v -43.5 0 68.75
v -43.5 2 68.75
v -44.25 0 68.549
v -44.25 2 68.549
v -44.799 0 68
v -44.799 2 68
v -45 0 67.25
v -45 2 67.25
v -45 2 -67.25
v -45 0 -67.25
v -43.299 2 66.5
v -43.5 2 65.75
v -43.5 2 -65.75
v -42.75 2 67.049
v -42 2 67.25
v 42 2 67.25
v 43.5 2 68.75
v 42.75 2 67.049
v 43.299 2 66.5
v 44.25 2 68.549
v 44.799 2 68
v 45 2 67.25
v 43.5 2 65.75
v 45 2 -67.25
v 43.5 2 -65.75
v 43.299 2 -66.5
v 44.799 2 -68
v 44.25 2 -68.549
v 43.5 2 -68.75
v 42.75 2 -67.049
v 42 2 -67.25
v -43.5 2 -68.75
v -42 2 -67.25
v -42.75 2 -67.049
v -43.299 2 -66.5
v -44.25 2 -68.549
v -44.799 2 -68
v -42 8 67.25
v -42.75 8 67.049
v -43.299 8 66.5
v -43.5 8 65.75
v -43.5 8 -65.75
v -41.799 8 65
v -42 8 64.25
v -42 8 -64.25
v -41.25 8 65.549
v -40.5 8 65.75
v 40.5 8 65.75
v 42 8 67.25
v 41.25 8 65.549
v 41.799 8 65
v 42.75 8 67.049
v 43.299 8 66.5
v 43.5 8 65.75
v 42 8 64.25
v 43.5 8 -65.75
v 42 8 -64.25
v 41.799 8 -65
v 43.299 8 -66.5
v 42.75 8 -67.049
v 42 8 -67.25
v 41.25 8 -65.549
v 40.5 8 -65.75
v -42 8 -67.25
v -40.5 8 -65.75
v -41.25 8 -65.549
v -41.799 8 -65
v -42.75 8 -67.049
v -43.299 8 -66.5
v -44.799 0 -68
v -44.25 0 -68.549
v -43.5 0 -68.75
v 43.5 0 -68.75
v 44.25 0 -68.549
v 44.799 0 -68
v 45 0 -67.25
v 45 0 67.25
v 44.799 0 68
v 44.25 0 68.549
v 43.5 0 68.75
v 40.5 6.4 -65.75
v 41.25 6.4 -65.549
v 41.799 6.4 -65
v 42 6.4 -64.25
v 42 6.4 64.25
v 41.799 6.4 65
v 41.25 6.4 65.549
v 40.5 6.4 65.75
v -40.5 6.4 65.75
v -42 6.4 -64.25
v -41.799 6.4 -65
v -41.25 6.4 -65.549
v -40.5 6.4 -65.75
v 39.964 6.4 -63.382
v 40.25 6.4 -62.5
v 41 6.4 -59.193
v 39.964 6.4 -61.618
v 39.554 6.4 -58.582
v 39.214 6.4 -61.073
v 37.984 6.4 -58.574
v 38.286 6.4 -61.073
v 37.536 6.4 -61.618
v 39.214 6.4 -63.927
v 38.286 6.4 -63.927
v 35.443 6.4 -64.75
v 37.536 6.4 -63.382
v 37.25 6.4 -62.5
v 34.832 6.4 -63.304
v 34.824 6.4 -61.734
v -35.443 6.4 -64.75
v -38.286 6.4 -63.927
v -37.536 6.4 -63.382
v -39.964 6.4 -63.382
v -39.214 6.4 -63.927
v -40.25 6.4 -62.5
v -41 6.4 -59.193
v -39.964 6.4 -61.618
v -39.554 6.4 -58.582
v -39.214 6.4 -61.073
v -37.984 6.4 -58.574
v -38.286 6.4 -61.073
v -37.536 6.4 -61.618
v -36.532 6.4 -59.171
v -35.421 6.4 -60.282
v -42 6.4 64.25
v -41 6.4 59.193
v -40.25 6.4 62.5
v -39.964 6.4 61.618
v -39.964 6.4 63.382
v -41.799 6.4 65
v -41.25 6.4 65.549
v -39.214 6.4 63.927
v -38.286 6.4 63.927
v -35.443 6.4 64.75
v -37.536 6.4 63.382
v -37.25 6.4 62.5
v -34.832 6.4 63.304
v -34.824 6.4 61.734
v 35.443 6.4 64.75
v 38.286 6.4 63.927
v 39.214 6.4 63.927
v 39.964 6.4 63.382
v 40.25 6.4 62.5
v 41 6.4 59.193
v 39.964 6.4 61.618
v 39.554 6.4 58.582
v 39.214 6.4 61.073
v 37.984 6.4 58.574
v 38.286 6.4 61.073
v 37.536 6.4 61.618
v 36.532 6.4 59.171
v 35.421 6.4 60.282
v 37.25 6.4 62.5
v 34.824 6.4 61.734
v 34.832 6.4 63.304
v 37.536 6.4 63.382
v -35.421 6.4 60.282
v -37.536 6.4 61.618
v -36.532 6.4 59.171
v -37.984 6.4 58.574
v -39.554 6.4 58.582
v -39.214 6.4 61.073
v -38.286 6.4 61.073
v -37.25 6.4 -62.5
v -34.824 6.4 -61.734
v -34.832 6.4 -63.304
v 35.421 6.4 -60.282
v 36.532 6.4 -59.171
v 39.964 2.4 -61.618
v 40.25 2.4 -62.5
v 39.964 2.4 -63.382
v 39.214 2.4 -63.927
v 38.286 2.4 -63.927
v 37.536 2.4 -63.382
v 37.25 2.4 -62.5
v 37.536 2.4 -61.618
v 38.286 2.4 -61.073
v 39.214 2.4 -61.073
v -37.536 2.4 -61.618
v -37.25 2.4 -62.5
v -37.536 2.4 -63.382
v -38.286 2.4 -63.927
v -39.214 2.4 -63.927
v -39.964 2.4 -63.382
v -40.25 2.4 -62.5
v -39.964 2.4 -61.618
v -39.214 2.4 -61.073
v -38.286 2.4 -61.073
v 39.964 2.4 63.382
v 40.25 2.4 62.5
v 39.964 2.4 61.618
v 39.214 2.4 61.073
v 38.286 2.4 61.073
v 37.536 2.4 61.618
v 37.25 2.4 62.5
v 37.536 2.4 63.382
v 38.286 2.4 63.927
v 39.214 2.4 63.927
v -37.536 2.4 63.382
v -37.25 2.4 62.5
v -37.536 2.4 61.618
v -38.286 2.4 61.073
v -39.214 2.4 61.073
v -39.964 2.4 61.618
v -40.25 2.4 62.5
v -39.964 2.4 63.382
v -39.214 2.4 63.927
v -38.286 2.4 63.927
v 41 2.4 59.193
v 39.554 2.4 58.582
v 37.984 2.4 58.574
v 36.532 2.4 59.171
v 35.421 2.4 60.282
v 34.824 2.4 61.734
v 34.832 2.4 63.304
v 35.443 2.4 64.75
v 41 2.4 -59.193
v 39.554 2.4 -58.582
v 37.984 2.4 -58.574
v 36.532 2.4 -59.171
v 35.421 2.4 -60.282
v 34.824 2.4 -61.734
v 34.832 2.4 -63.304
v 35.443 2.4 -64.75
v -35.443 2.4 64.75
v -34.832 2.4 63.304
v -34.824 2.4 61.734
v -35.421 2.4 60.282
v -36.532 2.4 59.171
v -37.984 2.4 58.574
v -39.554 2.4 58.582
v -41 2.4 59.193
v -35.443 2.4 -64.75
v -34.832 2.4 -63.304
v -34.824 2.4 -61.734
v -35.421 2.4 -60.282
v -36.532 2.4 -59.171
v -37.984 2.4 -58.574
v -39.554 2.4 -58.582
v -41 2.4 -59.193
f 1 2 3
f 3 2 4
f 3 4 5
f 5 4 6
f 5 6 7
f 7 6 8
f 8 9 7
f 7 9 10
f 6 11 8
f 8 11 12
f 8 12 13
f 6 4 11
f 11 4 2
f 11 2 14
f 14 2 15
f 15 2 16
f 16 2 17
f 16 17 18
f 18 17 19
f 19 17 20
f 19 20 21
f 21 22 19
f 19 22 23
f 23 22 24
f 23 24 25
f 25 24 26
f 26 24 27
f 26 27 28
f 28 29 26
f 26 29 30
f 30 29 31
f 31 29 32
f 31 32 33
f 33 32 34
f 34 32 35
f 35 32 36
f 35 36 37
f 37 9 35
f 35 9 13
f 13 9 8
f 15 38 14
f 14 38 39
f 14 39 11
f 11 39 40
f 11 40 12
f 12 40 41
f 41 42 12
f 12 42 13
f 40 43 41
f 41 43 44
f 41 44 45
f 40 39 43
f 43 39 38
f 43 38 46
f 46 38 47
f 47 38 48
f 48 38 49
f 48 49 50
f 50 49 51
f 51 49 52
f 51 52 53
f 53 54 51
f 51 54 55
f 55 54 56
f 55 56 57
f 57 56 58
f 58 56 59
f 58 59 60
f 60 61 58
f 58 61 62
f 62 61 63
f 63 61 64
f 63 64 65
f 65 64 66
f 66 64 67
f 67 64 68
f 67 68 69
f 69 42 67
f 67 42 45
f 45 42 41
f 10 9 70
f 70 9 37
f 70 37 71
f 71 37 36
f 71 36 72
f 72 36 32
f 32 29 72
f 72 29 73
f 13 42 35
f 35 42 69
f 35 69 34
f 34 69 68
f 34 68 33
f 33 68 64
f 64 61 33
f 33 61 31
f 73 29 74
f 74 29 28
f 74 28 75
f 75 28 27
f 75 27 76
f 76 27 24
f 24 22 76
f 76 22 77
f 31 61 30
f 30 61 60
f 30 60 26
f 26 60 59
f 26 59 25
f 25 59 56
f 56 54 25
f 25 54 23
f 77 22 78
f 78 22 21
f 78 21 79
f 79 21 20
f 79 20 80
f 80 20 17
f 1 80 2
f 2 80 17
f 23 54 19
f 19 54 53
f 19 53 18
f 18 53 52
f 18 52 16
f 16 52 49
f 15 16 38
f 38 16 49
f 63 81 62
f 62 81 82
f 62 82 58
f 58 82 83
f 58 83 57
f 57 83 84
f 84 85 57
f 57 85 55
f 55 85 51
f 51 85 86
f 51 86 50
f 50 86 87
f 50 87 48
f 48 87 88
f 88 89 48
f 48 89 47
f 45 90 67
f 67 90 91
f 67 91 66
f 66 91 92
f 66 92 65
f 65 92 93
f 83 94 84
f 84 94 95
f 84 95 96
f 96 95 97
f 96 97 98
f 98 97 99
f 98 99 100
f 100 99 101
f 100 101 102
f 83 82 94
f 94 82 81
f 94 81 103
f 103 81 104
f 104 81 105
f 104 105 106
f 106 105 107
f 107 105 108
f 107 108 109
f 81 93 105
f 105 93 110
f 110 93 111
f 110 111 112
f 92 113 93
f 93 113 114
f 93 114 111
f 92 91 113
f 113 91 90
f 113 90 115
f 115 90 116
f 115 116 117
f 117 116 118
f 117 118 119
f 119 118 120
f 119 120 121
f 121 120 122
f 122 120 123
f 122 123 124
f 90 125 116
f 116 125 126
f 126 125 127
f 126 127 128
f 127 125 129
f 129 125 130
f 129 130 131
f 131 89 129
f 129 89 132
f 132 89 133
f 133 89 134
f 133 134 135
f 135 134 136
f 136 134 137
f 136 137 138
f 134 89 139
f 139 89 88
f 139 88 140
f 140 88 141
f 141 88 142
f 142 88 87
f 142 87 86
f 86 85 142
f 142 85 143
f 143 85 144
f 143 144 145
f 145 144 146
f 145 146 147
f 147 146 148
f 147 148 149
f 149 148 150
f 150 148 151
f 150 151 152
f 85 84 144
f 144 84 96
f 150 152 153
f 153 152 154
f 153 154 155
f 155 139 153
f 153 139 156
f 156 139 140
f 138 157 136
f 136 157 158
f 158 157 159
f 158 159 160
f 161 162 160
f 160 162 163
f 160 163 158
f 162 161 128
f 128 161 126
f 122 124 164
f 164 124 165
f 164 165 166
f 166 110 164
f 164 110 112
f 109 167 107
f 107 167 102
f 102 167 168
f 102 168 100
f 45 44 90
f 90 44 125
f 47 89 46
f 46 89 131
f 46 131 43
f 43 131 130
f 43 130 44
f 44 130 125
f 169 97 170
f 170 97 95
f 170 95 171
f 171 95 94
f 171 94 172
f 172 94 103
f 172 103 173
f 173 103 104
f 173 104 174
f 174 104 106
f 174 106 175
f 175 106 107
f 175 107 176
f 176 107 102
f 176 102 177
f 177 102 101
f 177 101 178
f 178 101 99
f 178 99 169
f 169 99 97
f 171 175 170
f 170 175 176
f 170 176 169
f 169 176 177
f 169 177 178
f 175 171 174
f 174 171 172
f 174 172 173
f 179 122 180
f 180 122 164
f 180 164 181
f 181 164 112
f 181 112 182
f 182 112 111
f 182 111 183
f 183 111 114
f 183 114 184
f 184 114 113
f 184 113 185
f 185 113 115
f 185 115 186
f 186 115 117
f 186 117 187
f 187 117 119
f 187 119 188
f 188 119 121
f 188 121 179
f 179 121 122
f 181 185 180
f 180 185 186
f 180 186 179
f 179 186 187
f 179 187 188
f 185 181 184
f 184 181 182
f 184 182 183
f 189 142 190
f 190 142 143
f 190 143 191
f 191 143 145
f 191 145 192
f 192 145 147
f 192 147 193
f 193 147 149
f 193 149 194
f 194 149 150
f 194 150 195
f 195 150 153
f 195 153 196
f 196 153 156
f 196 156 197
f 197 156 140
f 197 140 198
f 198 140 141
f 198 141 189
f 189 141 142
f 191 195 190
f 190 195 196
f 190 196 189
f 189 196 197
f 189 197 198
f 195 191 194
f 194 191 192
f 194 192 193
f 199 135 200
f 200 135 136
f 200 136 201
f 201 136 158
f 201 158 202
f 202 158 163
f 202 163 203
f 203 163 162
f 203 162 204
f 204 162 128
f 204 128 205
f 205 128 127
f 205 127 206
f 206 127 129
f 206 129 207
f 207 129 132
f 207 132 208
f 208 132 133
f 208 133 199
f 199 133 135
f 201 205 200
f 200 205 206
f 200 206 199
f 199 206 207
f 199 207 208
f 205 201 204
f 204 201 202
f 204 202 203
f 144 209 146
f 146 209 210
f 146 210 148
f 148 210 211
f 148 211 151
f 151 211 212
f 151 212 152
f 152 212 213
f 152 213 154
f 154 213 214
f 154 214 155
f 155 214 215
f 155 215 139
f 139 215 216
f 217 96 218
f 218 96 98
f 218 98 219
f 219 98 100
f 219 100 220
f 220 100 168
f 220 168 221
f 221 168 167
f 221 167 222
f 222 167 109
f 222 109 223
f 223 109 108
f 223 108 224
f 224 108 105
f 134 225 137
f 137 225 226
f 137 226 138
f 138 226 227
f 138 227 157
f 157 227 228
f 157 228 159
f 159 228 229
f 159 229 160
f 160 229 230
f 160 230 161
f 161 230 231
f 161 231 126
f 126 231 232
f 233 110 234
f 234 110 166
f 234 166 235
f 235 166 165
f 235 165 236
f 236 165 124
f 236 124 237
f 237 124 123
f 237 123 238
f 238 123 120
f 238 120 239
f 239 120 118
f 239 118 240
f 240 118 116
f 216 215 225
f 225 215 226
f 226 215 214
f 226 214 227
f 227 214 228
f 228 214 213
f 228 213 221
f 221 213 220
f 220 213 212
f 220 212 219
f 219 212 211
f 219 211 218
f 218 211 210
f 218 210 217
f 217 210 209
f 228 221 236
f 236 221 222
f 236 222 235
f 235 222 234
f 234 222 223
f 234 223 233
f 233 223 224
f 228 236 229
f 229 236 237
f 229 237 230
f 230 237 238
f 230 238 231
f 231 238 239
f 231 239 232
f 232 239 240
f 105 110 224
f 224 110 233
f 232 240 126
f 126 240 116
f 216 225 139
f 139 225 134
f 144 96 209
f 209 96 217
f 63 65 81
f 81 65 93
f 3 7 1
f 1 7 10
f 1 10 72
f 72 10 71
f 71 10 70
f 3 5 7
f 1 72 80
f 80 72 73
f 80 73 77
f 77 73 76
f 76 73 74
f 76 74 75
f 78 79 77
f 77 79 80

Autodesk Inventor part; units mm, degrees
ref_plane "YZ Plane" through (0, 0, 0) normal (1, 0, 0) x (0, 1, 0)
ref_plane "XZ Plane" through (0, 0, 0) normal (0, 1, 0) x (-1, 0, 0)
ref_plane "XY Plane" through (0, 0, 0) normal (0, 0, 1) x (1, 0, 0)
sketch "Sketch1" plane through (0, 0, 0) normal (0, 1, 0) x (-1, 0, 0)
  line L0 (-45, 68.75) -> (45, 68.75)
  line L1 (45, 68.75) -> (45, -68.75)
  line L2 (45, -68.75) -> (-45, -68.75)
  line L3 (-45, -68.75) -> (-45, 68.75)
  line L4 (-45, 68.75) -> (45, -68.75) construction
  line L5 (45, 68.75) -> (-45, -68.75) construction
  point P0 (0, 0)
  dimension "d0" = 137.5
  dimension "d1" = 90
extrude "Extrusion1" add sketch "Sketch1" along normal blind 8
sketch "Sketch2" plane through (0, 8, 0) normal (0, 1, 0) x (1, 0, 0)
  line L0 (42, -65.75) -> (-42, -65.75)
  line L1 (-42, -65.75) -> (-42, 65.75)
  line L2 (-42, 65.75) -> (42, 65.75)
  line L3 (42, 65.75) -> (42, -65.75)
  line L4 (42, -65.75) -> (-42, 65.75) construction
  line L5 (-42, -65.75) -> (42, 65.75) construction
  point P0 (0, 0)
  dimension "d4" = 131.5
  dimension "d5" = 84
extrude "Extrusion2" cut sketch "Sketch2" against normal blind 1.6
sketch "Sketch3" plane through (0, 6.4, 0) normal (0, 1, 0) x (1, 0, 0)
  line L0 (41, -64.75) -> (-41, -64.75)
  line L1 (-41, -64.75) -> (-41, 64.75)
  line L2 (-41, 64.75) -> (41, 64.75)
  line L3 (41, 64.75) -> (41, -64.75)
  line L4 (41, -64.75) -> (-41, 64.75) construction
  line L5 (-41, -64.75) -> (41, 64.75) construction
  point P0 (0, 0)
  dimension "d8" = 129.5
  dimension "d9" = 82
extrude "Extrusion3" cut sketch "Sketch3" against normal blind 4
sketch "Sketch4" plane through (0, 2.4, 0) normal (0, 1, 0) x (1, 0, 0)
  circle A0 centre (-38.75, -62.5) radius 4
  circle A1 centre (-38.75, 62.5) radius 4
  line L0 (41, -64.75) -> (-41, -64.75) projected
  circle A2 centre (38.75, -62.5) radius 4
  line L1 (41, 64.75) -> (41, -64.75) projected
  circle A3 centre (38.75, 62.5) radius 4
  line L2 (-41, -64.75) -> (-41, 64.75) projected
  point P0 (0, 0)
  point P1 (-41, -59.1928)
  point P2 (-35.4428, -64.75)
  point P3 (41, -59.1928)
  point P4 (35.4428, -64.75)
  dimension "d12" = 8
  dimension "d13" = 8
  dimension "d14" = 125
  dimension "d16" = 2.25
  dimension "d17" = 8
  dimension "d18" = 2.25
  dimension "d19" = 2.25
  dimension "d20" = 77.5
  dimension "d21" = 8
  dimension "d22" = 125
  dimension "d23" = 77.5
  dimension "d24" = 2.25
extrude "Extrusion4" add sketch "Sketch4" along normal blind 4 contours A0 L0 L2 | A3 | A2 L1 L0 | A1 picked at (-37.7393, -61.273) picked at (37.8547, -61.1739)
sketch "Sketch5" plane through (0, 6.4, 0) normal (0, 1, 0) x (1, 0, 0)
  arc A0 (-35.4428, -64.75) -> (-41, -59.1928) centre (-38.75, -62.5) ccw projected
  circle A1 centre (-38.75, -62.5) radius 1.5
  arc A2 (-41, 59.1928) -> (-35.4428, 64.75) centre (-38.75, 62.5) ccw projected
  circle A3 centre (-38.75, 62.5) radius 1.5
  arc A4 (35.4428, 64.75) -> (41, 59.1928) centre (38.75, 62.5) ccw projected
  circle A5 centre (38.75, 62.5) radius 1.5
  arc A6 (41, -59.1928) -> (35.4428, -64.75) centre (38.75, -62.5) ccw projected
  circle A7 centre (38.75, -62.5) radius 1.5
  point P0 (0, 0)
  dimension "d27" = 3
  dimension "d28" = 3
  dimension "d29" = 3
  dimension "d30" = 3
extrude "Extrusion5" cut sketch "Sketch5" against normal blind 4
fillet "Fillet1" radius 1.5 4 edges at (-42, 7.2, 65.75) (-42, 7.2, -65.75) (42, 7.2, 65.75) (42, 7.2, -65.75)
sketch "Sketch6" plane through (0, 8, 0) normal (0, 1, 0) x (1, 0, 0)
  line L0 (43.5, -67.25) -> (-43.5, -67.25)
  line L1 (-43.5, -67.25) -> (-43.5, 67.25)
  line L2 (-43.5, 67.25) -> (43.5, 67.25)
  line L3 (43.5, 67.25) -> (43.5, -67.25)
  line L4 (43.5, -67.25) -> (-43.5, 67.25) construction
  line L5 (-43.5, -67.25) -> (43.5, 67.25) construction
  line L6 (45.5, -69.25) -> (-45.5, -69.25)
  line L7 (-45.5, -69.25) -> (-45.5, 69.25)
  line L8 (-45.5, 69.25) -> (45.5, 69.25)
  line L9 (45.5, 69.25) -> (45.5, -69.25)
  line L10 (45.5, -69.25) -> (-45.5, 69.25) construction
  line L11 (-45.5, -69.25) -> (45.5, 69.25) construction
  point P0 (0, 0)
  dimension "d35" = 134.5
  dimension "d36" = 87
  dimension "d37" = 138.5
  dimension "d38" = 91
extrude "Extrusion6" cut sketch "Sketch6" against normal blind 6
fillet "Fillet3" radius 1.5 8 edges at (43.5, 5, 67.25) (45, 1, 68.75) (43.5, 5, -67.25) (45, 1, -68.75) (-43.5, 5, -67.25) (-45, 1, -68.75) (-43.5, 5, 67.25) (-45, 1, 68.75)
properties part number "BoardMount"
